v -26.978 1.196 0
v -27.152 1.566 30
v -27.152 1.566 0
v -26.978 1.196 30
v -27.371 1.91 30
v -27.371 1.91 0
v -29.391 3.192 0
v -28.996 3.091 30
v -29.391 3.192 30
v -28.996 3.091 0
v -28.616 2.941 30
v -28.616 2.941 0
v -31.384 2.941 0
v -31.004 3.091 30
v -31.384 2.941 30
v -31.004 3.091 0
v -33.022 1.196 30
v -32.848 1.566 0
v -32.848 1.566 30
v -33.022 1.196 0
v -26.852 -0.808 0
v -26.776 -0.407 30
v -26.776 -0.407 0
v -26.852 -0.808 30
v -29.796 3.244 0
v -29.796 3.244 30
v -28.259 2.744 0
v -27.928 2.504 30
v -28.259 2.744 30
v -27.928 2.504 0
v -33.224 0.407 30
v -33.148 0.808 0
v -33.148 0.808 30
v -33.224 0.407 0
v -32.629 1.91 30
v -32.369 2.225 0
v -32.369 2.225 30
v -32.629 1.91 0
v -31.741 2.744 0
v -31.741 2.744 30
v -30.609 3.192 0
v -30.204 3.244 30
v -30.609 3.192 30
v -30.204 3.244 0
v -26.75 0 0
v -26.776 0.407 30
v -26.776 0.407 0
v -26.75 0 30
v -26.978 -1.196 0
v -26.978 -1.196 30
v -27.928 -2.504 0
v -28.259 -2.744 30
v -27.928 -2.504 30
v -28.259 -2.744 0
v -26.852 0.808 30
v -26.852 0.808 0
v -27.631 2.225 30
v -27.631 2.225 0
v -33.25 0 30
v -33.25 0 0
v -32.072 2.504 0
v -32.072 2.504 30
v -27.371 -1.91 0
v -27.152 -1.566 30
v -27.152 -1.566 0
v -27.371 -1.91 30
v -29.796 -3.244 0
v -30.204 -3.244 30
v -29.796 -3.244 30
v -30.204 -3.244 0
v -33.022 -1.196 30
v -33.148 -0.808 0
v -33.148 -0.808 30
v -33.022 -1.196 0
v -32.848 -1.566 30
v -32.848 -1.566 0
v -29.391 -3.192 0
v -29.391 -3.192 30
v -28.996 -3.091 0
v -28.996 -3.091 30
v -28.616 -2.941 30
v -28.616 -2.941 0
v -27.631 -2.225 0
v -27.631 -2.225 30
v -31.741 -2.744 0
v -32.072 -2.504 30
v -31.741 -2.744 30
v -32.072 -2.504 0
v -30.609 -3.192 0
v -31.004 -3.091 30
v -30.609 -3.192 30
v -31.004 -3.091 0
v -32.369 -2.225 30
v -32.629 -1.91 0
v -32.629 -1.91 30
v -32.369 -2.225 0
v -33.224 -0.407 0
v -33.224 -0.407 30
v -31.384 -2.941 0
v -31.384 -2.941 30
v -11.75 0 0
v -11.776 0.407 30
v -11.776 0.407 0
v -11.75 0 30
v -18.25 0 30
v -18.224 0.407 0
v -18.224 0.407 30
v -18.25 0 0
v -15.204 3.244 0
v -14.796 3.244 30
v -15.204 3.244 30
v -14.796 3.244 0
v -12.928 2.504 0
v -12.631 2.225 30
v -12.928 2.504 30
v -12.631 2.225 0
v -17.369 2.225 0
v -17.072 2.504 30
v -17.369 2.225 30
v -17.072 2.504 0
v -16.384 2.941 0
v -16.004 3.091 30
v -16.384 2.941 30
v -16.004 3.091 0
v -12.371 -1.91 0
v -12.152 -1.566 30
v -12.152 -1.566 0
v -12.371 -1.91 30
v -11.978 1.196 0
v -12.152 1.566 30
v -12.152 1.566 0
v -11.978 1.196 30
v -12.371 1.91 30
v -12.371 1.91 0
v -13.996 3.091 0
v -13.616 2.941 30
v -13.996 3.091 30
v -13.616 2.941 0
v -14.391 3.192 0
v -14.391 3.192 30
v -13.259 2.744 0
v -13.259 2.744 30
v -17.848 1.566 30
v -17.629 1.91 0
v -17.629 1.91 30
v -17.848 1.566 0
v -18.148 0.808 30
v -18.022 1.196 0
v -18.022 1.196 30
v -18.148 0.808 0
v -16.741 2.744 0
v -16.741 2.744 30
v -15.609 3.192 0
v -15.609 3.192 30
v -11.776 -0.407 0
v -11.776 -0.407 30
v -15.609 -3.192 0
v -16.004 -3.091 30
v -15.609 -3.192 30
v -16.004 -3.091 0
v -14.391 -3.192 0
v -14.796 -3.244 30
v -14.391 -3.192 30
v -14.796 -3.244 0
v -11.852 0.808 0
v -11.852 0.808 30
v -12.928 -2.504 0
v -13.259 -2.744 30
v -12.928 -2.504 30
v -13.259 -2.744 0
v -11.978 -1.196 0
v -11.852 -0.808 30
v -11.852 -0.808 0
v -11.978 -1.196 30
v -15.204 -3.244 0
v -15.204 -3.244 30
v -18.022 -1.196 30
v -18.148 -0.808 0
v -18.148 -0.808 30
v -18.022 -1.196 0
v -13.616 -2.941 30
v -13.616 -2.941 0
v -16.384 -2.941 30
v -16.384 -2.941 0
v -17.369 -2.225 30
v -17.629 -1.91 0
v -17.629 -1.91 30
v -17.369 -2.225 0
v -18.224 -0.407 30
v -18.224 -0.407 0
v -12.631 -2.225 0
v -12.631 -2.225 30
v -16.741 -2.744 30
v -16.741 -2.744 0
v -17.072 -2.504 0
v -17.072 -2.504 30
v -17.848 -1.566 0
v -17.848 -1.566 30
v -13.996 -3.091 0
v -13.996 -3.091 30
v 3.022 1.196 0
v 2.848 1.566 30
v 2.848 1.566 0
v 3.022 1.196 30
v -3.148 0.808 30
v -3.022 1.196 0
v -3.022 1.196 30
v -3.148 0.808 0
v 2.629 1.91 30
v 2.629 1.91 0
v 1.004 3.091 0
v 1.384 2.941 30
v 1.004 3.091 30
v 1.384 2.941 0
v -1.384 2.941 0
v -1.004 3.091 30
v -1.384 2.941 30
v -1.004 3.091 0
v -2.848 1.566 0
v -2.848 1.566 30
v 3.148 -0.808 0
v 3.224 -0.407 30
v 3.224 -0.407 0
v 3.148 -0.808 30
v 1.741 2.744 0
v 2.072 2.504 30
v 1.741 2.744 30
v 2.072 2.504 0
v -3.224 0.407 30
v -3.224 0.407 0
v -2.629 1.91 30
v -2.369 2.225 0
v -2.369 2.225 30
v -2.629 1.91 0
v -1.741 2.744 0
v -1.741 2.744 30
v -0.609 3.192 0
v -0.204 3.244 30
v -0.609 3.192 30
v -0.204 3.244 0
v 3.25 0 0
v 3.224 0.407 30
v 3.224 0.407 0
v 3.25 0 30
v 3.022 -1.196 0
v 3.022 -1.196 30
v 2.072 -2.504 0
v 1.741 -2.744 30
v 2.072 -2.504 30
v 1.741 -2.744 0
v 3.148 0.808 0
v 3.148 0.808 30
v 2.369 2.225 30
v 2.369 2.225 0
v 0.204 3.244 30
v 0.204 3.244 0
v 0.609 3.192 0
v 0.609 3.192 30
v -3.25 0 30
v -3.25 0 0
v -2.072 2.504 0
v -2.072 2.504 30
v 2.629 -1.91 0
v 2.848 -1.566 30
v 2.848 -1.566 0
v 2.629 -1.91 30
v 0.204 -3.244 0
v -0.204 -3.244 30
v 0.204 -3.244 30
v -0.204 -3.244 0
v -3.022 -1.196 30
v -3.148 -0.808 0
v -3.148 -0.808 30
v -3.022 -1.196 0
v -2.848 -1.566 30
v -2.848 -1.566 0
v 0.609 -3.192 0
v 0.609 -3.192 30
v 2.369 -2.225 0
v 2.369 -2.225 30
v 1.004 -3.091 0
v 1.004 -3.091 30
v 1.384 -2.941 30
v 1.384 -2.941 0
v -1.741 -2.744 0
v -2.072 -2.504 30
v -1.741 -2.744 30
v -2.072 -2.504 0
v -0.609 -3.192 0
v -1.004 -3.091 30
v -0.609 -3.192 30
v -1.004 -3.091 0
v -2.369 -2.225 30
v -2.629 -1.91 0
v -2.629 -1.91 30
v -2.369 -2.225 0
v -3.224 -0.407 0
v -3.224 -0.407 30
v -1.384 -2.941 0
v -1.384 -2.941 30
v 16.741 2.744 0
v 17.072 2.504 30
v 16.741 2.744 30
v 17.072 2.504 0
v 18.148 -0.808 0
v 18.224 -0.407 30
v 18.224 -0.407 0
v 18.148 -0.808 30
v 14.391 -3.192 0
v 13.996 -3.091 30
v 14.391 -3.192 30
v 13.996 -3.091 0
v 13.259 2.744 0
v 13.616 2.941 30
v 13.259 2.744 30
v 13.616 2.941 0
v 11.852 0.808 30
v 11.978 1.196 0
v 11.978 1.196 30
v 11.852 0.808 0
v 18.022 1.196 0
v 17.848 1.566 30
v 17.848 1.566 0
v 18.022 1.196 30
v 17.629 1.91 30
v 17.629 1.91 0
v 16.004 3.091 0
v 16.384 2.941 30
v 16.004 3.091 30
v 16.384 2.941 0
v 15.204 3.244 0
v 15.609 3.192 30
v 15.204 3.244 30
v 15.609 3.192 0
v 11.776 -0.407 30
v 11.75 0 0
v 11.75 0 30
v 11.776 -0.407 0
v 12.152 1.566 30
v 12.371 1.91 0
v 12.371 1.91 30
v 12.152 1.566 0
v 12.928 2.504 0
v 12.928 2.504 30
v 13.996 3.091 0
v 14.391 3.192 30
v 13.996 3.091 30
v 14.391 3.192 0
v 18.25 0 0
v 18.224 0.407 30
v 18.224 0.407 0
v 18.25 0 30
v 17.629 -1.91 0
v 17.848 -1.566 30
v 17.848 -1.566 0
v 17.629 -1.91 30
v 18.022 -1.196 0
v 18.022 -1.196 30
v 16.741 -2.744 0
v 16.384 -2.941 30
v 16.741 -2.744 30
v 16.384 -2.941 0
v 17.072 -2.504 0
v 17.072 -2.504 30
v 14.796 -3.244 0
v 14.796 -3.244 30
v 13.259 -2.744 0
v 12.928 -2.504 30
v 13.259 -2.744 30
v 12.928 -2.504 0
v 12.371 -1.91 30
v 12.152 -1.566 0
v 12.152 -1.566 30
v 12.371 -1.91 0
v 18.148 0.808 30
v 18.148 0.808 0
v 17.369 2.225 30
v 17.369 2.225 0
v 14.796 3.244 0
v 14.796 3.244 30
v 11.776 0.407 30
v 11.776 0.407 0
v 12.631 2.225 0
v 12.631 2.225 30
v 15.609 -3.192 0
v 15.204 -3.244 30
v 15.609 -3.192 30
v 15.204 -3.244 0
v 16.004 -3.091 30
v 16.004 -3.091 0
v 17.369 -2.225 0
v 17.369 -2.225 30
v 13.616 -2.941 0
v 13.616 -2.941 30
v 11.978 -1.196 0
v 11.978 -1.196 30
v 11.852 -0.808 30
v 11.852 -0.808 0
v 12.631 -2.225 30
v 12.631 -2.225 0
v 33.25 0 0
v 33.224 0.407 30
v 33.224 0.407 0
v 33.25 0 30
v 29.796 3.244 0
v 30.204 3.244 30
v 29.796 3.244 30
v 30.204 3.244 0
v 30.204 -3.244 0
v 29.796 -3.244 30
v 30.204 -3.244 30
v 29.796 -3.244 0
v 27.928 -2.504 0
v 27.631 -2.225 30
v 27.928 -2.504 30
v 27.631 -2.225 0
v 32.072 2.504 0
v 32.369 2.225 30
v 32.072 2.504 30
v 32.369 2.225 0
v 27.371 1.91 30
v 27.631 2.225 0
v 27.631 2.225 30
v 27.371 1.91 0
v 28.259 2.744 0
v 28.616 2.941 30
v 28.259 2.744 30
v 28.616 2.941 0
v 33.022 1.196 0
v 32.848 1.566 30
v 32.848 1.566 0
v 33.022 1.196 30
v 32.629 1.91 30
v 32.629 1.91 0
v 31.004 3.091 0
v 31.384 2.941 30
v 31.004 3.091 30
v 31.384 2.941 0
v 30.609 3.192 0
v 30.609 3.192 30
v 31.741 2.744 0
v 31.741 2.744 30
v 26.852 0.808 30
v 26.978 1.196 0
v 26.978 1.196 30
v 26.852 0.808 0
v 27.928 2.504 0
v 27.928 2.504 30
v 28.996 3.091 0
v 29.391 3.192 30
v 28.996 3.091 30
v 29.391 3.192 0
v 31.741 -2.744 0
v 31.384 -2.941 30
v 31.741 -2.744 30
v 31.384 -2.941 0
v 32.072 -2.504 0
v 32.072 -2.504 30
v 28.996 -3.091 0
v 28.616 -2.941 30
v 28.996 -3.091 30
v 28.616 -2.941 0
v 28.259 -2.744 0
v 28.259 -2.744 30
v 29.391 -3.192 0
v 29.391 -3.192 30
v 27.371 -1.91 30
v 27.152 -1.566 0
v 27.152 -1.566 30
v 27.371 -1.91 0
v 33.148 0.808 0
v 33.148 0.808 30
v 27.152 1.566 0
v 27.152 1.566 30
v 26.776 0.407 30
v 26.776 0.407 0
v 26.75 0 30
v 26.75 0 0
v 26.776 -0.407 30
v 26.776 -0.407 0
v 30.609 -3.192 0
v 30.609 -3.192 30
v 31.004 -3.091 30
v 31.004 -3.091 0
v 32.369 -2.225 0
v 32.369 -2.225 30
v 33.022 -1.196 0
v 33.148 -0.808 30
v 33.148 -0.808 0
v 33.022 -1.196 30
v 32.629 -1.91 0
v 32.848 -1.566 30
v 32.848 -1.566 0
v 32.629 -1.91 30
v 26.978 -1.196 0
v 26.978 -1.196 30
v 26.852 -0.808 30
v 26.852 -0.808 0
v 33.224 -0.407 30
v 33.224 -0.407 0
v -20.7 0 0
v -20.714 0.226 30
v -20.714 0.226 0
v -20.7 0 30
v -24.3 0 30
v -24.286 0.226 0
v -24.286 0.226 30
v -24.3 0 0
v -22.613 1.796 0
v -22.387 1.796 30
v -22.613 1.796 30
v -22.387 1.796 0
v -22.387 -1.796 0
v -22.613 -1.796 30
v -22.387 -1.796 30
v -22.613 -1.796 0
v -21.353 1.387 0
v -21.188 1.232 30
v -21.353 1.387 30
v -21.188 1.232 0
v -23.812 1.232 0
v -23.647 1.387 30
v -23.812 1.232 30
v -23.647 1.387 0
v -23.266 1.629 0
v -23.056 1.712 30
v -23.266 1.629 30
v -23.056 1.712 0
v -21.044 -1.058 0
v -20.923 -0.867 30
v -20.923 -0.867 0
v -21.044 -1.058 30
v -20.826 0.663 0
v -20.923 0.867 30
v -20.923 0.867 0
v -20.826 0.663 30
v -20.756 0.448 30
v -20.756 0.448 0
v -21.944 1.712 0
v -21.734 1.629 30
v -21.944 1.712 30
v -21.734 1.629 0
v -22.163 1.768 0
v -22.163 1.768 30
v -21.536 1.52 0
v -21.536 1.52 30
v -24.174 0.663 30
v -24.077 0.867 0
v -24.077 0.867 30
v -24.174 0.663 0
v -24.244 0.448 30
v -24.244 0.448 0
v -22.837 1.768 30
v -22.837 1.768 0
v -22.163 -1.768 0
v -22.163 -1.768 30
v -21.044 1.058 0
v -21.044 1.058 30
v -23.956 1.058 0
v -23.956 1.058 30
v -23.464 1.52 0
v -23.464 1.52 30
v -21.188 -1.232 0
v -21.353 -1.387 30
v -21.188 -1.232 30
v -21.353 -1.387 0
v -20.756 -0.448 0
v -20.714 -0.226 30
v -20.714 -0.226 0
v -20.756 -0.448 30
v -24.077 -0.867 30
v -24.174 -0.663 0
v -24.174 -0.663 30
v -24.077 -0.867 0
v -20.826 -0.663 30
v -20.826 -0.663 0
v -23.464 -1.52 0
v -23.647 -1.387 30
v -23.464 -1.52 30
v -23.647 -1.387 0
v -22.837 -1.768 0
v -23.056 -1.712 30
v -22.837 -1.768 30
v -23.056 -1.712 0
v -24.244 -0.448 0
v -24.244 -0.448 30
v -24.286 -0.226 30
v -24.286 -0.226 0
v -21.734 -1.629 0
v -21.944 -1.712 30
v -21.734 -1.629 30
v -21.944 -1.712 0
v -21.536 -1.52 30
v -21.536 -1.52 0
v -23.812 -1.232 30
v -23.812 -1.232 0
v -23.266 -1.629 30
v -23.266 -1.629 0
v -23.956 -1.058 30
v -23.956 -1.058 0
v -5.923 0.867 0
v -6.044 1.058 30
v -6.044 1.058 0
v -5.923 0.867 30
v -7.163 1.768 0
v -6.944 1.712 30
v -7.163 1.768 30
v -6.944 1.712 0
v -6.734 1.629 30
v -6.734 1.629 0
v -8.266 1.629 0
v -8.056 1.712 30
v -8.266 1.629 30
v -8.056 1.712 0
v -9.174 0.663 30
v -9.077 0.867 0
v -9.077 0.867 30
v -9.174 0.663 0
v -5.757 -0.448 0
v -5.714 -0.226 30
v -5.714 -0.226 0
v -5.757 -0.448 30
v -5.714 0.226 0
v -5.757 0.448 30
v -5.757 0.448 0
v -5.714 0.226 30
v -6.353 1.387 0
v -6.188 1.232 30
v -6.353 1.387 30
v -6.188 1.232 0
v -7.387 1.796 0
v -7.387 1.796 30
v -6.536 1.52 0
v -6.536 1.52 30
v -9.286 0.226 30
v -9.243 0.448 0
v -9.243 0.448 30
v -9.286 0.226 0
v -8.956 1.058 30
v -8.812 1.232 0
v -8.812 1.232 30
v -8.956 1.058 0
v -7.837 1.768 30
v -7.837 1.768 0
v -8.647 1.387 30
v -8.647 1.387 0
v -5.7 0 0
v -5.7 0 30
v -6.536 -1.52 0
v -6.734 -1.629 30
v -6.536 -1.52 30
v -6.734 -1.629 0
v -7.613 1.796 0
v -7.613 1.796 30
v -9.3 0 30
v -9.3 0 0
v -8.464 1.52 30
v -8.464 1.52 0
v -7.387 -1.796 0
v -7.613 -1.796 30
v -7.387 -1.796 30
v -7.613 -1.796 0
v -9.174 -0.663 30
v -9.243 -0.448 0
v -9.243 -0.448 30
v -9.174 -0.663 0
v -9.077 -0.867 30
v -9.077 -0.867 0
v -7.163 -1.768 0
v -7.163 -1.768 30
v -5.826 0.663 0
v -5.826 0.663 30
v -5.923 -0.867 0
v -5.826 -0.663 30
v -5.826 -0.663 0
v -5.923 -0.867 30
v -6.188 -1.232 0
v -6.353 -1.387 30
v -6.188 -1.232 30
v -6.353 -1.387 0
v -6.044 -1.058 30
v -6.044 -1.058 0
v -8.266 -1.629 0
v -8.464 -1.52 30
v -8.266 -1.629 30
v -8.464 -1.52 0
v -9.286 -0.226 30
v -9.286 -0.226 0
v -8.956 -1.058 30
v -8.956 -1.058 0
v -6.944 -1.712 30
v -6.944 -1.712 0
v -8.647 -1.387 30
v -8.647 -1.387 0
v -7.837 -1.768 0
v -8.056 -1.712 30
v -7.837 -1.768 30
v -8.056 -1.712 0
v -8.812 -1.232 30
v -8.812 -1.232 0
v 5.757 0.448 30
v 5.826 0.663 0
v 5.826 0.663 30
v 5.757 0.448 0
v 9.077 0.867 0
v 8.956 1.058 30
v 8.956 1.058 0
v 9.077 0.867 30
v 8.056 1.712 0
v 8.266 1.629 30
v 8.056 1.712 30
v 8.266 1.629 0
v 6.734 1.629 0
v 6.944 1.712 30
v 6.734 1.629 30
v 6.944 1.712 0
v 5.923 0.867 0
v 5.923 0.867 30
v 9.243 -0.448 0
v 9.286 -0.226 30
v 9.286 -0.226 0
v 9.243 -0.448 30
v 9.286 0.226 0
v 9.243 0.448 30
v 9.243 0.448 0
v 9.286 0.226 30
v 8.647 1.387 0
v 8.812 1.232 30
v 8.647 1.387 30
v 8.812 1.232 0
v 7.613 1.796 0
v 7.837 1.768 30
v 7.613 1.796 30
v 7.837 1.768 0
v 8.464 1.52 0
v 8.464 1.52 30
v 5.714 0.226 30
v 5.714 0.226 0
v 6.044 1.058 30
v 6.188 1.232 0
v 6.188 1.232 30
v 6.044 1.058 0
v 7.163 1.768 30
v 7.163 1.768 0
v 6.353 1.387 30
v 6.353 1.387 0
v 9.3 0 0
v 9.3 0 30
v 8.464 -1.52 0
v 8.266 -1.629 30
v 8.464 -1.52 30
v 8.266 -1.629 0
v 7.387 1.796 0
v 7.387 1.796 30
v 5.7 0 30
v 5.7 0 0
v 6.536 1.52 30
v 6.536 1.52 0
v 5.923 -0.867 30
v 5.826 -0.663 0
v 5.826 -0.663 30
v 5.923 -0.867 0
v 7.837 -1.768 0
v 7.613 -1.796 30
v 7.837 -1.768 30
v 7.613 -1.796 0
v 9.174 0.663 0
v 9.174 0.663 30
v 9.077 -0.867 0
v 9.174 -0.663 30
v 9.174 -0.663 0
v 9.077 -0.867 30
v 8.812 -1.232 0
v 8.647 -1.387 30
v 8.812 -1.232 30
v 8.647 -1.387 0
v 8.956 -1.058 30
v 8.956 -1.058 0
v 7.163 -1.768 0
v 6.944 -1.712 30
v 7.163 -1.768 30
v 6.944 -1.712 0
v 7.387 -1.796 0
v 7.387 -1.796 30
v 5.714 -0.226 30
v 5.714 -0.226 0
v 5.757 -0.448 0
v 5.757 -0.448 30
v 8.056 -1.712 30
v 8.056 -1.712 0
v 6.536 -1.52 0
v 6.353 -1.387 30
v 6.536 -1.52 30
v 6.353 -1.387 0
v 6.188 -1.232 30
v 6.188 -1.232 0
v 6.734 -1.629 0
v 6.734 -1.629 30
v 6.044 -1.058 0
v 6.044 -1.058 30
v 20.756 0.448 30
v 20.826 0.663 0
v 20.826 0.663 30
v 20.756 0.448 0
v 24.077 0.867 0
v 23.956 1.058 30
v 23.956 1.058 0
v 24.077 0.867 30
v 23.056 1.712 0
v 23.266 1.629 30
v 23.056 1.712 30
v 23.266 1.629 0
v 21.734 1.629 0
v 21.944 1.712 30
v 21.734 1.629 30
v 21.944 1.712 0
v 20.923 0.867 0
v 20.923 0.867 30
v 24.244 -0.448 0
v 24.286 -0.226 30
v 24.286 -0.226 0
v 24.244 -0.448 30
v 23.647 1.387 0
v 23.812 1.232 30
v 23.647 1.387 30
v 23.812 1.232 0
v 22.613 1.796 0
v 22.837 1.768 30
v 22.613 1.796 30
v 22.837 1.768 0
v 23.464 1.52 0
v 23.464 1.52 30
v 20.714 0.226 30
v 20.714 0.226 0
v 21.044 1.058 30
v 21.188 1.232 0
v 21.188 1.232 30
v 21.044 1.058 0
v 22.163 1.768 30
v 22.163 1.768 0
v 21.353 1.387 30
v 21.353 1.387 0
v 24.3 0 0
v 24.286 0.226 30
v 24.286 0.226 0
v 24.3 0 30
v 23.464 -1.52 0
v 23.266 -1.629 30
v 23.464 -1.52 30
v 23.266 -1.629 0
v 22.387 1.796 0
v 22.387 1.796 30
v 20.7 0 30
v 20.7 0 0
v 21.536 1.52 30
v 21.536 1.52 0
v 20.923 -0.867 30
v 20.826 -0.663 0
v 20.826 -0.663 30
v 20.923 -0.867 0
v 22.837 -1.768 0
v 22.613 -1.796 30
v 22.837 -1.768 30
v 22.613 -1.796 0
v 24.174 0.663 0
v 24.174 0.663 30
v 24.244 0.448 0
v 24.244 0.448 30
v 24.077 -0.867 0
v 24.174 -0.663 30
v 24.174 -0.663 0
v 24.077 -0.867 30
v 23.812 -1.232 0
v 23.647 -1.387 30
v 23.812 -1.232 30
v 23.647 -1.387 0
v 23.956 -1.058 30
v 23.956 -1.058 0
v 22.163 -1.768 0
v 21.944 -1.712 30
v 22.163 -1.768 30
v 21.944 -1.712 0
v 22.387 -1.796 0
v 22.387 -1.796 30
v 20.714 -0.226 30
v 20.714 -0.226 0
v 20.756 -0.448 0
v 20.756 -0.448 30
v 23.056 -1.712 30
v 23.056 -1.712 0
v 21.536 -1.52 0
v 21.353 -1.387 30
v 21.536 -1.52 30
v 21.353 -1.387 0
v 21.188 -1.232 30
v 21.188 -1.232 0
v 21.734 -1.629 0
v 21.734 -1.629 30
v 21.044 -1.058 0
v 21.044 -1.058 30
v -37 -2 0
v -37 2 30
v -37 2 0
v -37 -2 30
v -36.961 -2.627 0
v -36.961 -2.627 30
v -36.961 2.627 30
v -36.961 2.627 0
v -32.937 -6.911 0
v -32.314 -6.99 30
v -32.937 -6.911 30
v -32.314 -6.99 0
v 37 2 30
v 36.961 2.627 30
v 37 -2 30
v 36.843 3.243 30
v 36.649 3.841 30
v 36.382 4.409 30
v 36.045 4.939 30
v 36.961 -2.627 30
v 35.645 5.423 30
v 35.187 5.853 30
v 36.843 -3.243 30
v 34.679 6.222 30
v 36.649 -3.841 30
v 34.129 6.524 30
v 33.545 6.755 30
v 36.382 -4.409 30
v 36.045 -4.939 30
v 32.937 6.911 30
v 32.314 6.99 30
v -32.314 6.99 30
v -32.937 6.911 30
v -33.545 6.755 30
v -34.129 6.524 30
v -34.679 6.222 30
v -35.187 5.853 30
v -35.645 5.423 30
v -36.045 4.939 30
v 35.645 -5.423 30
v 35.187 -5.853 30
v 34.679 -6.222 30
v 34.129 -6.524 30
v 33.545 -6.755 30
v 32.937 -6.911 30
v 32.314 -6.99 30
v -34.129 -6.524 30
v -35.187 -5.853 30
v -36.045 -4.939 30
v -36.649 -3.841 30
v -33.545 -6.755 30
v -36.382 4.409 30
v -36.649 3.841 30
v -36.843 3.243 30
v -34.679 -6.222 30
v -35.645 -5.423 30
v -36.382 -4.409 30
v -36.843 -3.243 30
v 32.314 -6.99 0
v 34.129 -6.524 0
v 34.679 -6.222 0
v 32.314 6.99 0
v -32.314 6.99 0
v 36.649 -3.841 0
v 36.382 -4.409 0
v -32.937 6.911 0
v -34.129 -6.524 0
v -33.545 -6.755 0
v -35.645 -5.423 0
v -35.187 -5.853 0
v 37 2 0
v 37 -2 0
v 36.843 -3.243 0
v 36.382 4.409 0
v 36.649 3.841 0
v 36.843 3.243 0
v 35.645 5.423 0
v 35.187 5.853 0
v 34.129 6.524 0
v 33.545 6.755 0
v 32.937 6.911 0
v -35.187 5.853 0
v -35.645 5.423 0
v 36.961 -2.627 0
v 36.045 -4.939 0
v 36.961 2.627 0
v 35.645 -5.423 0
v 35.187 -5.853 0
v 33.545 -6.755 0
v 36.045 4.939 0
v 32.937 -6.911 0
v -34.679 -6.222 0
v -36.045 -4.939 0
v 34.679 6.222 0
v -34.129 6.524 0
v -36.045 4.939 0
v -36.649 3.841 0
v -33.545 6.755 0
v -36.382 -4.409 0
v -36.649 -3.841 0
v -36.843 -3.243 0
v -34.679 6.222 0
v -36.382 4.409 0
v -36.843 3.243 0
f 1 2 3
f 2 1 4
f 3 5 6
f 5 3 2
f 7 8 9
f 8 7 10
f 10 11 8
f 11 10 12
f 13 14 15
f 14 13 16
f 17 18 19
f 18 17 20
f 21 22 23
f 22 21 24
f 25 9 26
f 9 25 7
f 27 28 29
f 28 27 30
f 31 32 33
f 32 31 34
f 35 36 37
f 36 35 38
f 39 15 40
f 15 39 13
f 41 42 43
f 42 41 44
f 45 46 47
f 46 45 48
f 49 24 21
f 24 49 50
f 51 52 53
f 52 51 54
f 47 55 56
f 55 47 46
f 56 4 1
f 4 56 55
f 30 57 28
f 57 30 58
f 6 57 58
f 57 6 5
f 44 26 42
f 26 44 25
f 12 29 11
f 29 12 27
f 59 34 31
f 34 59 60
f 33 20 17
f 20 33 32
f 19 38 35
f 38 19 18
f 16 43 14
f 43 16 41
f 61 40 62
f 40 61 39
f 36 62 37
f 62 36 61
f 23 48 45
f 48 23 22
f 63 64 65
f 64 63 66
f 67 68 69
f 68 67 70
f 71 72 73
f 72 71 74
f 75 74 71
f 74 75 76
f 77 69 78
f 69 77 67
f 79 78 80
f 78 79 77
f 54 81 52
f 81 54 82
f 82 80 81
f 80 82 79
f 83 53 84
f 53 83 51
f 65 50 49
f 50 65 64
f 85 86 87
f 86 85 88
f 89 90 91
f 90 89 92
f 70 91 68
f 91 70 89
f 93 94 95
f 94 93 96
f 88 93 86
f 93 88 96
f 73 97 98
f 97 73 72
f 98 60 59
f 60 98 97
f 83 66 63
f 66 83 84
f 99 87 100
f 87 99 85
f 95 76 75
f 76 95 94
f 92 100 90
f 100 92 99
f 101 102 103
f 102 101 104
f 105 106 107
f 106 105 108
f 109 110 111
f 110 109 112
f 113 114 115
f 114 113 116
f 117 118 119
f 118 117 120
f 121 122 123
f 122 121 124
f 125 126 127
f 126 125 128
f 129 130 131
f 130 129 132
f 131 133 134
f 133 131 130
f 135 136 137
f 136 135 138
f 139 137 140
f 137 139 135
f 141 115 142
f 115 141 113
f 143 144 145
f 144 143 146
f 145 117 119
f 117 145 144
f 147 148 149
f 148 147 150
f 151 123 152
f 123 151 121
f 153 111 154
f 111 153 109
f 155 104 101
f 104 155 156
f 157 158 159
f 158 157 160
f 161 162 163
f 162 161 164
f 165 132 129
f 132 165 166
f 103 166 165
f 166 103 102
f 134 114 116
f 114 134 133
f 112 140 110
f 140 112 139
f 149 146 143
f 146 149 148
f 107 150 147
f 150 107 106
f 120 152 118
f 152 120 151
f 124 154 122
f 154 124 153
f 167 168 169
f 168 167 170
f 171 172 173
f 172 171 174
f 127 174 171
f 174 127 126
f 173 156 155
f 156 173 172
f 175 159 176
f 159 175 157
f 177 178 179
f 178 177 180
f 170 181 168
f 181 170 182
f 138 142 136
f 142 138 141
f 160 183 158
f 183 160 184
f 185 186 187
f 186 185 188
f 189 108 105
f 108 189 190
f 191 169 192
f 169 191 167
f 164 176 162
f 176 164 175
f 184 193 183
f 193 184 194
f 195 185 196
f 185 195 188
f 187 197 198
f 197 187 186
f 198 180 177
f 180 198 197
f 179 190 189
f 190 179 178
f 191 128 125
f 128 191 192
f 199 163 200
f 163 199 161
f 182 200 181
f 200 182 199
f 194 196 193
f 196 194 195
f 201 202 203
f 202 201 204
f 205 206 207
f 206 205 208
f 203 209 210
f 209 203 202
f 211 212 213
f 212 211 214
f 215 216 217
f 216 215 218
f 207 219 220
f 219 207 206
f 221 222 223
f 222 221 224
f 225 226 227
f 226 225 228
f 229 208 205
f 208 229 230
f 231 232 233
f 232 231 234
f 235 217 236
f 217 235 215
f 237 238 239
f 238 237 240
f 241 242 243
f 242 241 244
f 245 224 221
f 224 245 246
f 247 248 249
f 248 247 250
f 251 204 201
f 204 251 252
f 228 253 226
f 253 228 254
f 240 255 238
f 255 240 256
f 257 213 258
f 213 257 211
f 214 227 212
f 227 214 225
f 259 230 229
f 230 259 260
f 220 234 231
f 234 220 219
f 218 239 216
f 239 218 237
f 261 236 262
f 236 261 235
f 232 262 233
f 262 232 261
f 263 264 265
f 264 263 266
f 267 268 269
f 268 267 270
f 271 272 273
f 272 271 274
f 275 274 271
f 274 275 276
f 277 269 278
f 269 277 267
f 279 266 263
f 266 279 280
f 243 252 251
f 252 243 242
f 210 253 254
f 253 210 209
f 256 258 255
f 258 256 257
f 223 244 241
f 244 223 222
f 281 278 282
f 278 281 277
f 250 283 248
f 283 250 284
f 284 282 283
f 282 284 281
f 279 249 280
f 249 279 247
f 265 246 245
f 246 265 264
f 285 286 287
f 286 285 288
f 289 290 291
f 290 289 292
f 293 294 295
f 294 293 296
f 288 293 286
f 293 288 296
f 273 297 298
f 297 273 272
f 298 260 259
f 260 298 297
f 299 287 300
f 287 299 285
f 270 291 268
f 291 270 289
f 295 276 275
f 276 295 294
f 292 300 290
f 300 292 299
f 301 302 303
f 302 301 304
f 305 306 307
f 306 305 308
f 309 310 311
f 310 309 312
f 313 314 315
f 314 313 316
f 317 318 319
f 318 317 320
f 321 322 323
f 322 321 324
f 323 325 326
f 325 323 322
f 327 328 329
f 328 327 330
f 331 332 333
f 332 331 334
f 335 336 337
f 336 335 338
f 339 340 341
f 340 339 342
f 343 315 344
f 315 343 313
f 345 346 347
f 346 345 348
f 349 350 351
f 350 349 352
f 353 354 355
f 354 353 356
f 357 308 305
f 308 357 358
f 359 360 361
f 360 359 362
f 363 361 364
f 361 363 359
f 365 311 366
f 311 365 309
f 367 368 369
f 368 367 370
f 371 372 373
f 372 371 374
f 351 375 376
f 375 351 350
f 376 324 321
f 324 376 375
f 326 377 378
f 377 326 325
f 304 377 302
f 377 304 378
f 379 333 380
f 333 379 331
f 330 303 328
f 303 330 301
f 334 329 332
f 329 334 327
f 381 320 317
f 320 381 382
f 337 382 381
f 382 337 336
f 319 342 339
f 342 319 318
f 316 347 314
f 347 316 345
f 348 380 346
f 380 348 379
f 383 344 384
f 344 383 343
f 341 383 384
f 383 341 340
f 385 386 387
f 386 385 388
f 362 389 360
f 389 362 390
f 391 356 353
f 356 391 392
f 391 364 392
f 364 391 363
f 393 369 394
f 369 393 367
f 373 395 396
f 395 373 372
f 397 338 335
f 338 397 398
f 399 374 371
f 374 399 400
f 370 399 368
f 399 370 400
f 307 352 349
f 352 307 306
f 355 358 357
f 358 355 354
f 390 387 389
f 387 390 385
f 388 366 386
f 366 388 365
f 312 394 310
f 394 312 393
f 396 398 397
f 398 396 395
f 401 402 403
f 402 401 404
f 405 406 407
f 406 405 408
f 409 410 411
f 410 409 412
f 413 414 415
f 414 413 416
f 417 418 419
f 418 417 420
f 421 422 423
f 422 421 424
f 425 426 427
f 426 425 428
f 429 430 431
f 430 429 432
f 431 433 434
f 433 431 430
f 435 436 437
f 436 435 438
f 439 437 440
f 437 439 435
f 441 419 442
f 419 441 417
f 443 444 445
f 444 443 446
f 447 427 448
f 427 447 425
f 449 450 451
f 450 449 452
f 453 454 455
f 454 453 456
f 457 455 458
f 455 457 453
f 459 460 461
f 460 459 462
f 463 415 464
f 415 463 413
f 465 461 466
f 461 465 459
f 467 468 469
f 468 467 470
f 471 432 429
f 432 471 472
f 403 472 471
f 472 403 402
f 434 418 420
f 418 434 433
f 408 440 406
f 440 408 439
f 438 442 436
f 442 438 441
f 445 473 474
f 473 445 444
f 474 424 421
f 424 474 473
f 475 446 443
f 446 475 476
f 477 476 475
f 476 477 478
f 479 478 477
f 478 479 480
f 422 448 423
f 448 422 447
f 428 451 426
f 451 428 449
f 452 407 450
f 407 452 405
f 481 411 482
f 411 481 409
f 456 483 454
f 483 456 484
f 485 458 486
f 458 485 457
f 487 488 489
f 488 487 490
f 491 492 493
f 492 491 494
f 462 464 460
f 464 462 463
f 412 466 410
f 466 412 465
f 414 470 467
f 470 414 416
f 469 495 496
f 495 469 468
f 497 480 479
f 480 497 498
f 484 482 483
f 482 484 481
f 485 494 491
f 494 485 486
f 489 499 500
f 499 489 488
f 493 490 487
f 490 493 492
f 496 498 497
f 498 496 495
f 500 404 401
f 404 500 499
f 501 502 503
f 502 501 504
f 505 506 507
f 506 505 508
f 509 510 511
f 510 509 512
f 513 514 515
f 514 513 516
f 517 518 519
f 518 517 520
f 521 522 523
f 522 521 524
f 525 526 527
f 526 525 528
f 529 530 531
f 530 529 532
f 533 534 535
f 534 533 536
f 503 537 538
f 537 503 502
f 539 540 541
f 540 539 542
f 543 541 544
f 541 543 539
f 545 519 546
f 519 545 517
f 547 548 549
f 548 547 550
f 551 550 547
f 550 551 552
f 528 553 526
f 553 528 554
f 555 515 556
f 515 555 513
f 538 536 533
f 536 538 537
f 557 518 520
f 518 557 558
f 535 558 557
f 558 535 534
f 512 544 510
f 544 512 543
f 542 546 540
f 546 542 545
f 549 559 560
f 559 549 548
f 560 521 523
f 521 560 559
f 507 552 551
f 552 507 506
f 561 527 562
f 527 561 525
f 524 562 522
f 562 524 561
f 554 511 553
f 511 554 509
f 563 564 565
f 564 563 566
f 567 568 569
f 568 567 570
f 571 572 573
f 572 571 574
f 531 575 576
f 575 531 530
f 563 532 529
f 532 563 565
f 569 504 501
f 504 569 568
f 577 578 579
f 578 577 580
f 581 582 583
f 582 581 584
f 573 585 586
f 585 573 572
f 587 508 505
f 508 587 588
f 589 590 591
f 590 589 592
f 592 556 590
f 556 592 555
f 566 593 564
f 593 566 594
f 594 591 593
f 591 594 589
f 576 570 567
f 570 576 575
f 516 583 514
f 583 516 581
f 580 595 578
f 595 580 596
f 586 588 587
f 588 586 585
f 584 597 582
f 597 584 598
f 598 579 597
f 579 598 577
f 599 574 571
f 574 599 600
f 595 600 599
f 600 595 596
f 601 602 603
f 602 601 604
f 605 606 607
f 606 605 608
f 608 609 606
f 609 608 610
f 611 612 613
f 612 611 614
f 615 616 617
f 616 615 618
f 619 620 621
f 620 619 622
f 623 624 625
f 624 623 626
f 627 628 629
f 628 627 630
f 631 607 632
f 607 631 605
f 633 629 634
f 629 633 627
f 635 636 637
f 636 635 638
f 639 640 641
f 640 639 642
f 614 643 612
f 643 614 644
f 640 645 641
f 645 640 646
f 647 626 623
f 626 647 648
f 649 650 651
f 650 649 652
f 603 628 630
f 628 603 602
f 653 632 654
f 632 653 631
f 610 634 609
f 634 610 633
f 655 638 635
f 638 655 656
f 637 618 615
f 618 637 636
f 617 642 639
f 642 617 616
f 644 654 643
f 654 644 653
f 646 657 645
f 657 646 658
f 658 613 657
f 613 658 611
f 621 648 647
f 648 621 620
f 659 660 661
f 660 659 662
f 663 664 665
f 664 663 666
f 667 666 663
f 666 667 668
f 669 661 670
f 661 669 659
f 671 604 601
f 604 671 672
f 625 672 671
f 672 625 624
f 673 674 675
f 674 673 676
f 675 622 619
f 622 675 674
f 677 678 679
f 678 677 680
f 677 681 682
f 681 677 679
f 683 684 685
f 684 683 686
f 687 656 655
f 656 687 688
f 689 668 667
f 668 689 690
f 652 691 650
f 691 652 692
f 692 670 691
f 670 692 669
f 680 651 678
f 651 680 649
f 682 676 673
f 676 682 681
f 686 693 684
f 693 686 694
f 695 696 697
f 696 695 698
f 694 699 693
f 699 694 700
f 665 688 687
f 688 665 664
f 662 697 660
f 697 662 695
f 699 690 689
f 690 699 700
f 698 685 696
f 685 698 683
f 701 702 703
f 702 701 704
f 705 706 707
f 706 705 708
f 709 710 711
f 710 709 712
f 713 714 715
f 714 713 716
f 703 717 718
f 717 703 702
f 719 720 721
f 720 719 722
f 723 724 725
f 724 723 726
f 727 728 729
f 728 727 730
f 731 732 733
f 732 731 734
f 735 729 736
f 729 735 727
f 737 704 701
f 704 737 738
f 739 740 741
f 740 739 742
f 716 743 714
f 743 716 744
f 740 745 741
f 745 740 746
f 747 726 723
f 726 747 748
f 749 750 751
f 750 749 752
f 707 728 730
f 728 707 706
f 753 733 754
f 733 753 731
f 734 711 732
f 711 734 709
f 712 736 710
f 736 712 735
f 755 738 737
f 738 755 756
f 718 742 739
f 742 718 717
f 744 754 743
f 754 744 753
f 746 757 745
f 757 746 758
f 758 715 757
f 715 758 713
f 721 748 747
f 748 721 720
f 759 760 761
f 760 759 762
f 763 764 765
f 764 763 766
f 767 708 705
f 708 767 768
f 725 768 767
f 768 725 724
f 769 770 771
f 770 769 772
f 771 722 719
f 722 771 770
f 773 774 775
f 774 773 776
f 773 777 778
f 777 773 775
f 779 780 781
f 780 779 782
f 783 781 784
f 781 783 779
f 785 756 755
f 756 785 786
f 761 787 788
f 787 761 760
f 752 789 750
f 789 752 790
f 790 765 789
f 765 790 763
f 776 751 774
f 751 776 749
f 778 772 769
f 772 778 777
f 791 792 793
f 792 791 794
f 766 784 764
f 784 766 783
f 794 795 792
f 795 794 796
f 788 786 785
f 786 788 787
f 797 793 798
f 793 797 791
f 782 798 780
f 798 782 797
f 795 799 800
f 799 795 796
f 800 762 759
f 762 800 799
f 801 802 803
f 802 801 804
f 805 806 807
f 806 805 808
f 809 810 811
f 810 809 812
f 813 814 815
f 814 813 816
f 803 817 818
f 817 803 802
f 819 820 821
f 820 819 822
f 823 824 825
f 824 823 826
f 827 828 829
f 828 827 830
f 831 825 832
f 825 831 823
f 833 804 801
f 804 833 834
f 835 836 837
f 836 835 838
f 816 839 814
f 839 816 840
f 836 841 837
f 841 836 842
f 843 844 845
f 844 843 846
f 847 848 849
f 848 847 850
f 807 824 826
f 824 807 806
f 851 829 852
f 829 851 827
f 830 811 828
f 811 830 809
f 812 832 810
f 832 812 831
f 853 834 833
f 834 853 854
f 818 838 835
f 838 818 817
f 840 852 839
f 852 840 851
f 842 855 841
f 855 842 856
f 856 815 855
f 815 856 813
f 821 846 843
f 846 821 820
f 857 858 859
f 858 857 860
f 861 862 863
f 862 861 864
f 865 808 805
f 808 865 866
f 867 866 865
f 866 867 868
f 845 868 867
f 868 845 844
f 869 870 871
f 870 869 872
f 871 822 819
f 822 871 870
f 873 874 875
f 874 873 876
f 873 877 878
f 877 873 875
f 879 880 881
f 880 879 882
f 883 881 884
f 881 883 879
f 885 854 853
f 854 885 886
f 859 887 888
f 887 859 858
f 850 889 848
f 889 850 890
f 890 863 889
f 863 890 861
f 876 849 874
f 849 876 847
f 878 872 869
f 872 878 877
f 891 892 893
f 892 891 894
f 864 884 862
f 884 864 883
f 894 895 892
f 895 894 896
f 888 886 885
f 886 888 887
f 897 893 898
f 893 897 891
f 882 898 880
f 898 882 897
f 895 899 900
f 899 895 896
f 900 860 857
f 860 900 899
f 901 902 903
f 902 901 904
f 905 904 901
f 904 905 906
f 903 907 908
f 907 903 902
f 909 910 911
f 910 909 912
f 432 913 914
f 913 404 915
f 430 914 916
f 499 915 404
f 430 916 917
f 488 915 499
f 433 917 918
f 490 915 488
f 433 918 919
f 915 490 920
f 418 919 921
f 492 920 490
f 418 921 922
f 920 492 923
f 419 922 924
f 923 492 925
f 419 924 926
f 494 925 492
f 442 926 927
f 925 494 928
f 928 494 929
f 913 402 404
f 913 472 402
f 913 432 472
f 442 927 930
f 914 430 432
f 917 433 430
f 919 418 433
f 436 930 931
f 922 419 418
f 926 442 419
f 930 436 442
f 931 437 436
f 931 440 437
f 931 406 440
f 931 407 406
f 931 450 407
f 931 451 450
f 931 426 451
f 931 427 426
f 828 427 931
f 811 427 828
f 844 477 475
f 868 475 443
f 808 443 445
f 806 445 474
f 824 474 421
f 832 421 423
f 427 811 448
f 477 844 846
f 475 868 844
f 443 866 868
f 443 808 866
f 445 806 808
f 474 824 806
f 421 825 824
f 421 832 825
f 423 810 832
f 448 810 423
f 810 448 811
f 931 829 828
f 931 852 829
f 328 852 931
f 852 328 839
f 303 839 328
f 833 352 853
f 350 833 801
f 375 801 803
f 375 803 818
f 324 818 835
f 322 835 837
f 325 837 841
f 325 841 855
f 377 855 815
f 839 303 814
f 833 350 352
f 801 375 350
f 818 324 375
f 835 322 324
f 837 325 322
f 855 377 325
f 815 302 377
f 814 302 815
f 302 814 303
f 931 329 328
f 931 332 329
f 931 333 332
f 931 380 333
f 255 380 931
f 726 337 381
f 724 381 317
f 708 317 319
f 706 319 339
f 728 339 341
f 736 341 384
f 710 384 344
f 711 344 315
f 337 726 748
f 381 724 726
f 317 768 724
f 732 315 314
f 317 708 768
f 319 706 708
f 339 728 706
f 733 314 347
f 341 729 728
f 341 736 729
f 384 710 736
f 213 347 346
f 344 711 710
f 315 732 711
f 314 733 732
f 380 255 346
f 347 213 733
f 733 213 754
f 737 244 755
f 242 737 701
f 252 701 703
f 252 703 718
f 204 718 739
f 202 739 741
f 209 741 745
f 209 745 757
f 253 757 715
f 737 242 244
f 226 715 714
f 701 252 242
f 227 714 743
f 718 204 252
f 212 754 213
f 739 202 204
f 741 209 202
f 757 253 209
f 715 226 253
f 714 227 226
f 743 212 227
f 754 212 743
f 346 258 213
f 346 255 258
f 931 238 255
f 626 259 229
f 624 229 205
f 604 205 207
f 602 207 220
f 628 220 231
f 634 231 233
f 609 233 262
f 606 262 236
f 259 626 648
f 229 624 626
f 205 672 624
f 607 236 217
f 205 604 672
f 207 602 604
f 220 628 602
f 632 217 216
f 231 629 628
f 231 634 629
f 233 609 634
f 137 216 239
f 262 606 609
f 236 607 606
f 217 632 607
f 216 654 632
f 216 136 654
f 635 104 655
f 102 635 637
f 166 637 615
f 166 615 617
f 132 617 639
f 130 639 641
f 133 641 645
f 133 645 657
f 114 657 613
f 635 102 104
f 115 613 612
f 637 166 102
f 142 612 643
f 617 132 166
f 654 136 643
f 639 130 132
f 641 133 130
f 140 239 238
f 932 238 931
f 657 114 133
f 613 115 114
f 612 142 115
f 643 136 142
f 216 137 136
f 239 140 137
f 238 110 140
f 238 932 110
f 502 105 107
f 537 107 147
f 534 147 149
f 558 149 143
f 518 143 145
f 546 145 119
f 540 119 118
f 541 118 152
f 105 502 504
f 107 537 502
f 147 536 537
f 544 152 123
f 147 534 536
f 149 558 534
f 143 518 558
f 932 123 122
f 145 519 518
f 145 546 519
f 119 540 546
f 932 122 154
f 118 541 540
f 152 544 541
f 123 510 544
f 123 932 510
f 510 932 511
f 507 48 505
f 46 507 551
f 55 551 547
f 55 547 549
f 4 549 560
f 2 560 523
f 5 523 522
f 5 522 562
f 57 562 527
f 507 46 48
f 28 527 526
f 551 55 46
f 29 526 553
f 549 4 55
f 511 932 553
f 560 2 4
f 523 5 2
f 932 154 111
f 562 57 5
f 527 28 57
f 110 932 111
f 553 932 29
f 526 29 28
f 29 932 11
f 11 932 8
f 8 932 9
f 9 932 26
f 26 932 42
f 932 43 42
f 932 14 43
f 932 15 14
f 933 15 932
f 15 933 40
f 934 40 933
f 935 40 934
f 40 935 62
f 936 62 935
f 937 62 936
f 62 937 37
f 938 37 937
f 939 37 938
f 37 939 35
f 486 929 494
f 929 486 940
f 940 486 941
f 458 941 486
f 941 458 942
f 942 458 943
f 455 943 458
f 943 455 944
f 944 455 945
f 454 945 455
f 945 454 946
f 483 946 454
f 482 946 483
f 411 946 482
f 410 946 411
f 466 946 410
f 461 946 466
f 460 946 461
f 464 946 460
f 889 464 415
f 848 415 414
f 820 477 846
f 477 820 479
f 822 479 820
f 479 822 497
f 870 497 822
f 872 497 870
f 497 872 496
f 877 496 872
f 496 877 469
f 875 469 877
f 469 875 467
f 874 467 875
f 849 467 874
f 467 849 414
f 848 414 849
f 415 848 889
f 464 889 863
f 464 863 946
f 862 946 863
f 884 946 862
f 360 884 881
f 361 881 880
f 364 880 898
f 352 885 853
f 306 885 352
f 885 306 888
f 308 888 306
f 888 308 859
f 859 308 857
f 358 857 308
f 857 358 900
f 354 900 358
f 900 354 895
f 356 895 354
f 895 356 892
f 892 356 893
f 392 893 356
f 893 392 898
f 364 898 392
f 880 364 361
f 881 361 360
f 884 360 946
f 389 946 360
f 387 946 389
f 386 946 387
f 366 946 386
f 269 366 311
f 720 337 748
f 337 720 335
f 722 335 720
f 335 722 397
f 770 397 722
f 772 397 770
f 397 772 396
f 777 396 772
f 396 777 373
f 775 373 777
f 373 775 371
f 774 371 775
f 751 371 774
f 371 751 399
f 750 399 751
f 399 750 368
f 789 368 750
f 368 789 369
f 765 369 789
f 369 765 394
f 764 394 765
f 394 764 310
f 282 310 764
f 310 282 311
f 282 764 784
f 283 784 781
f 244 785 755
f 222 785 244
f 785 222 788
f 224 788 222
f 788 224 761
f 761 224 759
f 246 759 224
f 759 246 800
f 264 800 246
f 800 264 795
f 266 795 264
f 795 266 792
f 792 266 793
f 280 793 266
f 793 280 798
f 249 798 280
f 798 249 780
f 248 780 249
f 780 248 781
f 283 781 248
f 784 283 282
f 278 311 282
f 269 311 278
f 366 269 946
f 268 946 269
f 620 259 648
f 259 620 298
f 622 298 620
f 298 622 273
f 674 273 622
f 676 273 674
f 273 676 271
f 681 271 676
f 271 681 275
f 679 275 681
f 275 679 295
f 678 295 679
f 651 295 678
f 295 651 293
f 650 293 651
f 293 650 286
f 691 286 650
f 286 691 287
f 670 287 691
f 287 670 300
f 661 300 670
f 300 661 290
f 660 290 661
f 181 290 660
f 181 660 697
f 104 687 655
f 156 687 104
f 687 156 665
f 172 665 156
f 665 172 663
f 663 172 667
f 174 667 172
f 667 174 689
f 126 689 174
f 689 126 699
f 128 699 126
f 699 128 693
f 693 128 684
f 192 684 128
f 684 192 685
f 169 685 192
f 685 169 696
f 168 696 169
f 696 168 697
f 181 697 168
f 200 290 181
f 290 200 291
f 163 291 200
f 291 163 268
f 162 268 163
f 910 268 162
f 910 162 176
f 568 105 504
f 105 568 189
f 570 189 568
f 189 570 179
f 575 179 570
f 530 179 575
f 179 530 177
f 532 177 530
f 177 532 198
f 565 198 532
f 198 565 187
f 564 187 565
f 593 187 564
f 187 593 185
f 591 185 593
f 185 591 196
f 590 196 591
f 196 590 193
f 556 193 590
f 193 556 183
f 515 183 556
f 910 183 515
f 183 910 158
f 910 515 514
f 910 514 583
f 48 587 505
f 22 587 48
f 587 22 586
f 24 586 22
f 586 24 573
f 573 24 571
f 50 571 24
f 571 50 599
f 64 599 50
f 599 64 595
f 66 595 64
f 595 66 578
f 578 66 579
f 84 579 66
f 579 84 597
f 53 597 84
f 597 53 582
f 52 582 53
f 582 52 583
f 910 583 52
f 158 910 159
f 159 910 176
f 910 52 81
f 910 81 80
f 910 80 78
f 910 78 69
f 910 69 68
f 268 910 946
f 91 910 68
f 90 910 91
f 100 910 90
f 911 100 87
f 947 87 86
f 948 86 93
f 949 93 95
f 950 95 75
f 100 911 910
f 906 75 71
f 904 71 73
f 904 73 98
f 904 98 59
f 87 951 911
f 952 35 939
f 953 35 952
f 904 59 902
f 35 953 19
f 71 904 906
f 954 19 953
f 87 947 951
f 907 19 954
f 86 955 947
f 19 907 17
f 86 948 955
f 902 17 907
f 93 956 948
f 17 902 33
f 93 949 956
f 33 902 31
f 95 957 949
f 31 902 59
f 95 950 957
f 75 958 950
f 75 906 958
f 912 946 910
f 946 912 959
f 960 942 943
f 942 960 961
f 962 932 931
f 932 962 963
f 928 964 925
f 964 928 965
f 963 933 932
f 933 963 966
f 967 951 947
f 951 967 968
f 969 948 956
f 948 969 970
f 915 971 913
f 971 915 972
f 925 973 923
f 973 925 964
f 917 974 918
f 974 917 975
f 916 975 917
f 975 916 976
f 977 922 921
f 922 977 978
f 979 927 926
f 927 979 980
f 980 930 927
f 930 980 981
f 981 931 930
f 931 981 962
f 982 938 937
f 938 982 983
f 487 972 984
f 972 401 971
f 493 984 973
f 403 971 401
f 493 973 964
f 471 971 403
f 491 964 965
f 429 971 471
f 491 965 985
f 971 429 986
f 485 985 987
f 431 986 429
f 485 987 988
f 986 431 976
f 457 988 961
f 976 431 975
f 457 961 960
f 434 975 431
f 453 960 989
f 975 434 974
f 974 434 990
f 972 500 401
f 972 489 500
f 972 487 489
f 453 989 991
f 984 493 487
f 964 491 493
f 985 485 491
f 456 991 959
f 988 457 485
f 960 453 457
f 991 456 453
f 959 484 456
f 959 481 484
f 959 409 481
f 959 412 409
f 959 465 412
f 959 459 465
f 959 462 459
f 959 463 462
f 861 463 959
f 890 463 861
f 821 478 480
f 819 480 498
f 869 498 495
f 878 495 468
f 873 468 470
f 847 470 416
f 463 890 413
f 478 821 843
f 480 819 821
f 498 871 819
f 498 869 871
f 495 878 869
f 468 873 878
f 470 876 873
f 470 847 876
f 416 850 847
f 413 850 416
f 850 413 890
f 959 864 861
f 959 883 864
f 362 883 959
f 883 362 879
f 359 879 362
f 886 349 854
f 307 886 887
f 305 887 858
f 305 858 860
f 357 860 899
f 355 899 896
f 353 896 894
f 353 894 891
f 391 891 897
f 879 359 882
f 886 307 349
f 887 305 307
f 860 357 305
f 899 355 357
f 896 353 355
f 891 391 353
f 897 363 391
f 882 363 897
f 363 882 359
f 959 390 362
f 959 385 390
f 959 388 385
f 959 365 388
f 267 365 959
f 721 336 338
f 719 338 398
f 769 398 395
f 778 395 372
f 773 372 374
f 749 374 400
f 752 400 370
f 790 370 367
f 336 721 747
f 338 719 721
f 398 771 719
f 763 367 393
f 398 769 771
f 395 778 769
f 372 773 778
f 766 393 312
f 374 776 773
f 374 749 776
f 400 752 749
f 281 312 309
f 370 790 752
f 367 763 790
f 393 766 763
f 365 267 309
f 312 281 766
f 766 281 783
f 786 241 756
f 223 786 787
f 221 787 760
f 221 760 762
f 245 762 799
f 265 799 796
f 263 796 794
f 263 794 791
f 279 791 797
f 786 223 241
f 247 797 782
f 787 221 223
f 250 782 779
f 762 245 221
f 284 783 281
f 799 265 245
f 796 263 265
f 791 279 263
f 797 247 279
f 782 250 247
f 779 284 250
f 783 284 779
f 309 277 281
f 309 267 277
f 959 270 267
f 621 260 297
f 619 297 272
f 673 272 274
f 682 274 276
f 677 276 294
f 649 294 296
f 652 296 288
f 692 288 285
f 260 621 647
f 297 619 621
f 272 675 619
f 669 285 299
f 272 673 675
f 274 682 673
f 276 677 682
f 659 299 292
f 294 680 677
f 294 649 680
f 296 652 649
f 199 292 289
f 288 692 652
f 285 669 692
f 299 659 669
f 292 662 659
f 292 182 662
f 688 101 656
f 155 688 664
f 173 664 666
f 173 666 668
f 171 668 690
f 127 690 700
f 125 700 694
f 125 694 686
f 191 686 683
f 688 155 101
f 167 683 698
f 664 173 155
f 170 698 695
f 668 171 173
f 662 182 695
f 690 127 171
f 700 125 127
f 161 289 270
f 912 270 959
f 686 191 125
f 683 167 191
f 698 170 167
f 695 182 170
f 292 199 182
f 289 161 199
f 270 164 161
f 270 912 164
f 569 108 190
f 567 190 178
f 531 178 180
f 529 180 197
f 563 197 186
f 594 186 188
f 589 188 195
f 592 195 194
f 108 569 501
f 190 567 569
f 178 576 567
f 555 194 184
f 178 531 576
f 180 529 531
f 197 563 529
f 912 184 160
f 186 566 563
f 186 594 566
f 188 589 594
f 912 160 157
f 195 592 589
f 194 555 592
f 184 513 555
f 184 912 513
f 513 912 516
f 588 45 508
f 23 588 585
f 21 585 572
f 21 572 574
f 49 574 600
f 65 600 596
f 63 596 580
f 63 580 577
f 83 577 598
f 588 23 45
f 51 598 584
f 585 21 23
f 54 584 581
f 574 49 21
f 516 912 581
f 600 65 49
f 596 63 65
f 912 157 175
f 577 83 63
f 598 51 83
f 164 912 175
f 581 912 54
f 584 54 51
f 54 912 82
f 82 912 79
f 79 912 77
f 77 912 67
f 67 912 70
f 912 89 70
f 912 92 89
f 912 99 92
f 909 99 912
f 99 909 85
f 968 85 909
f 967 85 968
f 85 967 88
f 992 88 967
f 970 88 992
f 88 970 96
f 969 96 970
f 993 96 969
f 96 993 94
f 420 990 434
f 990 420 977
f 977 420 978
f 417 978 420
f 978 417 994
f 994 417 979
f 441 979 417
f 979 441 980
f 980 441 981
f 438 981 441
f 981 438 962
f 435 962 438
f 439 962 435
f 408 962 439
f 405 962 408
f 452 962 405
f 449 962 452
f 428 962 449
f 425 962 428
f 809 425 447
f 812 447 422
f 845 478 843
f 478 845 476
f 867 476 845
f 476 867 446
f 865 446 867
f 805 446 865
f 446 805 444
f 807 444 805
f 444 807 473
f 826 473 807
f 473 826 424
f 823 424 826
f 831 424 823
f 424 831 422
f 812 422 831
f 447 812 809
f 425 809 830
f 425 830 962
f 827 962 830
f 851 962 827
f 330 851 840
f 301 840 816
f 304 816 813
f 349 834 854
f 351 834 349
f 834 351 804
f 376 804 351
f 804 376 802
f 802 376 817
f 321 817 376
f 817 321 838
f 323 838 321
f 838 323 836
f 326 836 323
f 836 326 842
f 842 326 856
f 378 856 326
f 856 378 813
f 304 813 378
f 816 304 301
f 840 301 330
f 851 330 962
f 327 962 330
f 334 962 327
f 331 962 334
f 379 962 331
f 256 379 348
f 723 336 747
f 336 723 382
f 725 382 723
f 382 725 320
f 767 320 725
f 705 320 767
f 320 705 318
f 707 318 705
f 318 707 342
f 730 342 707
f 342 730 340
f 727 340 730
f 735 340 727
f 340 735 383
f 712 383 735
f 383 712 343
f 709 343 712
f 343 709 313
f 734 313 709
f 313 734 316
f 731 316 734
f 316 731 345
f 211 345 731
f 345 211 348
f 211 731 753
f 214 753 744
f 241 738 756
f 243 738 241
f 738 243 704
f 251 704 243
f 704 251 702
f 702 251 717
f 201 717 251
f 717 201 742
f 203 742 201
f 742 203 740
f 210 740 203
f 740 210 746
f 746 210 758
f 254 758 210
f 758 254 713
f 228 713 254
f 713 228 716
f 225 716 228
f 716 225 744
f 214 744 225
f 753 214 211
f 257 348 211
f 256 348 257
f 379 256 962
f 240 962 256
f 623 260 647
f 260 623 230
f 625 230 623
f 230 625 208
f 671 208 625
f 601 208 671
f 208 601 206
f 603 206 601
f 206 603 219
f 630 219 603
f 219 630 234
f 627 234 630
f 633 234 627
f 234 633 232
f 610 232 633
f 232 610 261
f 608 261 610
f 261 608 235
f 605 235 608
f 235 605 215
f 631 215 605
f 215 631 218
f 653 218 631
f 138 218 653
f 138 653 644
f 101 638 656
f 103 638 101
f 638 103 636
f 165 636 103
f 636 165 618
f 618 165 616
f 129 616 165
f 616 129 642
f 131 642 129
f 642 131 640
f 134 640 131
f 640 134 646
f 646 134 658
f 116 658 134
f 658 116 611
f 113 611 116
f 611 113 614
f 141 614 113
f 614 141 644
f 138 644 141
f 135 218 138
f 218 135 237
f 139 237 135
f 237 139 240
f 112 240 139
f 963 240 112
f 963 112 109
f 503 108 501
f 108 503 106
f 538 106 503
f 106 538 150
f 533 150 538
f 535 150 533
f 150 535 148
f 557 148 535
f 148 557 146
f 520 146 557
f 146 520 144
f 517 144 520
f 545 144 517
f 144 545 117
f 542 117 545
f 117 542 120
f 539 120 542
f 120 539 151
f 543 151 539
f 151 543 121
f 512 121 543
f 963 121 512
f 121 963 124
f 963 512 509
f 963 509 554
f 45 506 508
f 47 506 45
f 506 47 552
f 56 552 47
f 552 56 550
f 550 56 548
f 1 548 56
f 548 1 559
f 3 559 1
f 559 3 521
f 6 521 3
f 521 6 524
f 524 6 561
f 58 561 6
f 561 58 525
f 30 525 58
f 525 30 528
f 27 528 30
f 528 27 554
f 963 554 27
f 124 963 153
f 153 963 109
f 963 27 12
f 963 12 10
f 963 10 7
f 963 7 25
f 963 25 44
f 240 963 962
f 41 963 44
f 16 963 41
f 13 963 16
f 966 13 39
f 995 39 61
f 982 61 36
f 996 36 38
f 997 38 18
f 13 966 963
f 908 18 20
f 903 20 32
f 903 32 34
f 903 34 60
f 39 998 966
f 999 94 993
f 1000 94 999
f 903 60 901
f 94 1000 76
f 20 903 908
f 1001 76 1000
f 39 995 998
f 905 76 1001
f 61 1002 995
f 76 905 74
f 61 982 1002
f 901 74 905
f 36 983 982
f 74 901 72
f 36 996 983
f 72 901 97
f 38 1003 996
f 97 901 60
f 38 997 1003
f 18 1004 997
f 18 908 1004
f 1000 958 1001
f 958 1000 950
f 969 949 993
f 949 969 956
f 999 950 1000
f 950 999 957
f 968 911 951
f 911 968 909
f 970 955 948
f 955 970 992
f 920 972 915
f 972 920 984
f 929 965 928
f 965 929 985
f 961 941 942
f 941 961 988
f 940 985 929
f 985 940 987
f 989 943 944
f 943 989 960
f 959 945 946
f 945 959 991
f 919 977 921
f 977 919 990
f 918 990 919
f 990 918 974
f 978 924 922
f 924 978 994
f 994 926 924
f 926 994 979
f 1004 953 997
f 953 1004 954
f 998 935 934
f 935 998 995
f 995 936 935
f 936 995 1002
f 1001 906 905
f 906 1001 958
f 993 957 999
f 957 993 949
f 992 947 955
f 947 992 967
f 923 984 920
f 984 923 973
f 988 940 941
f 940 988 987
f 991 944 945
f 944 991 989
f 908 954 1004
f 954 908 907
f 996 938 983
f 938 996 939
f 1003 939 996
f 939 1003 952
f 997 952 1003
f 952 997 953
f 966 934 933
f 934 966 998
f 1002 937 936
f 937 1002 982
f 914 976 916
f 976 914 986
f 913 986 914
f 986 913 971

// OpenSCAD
$fn = 50;


difference() {
	union() {
		translate(v = [0, 0, 0]) {
			rotate(a = [0, 0, 0]) {
				hull() {
					translate(v = [-32.0000000000, 2.0000000000, 0]) {
						rotate(a = [0, 0, 0]) {
							translate(v = [0, 0, 0]) {
								rotate(a = [0, 0, 0]) {
									cylinder(h = 30, r = 5);
								}
							}
						}
					}
					translate(v = [32.0000000000, 2.0000000000, 0]) {
						rotate(a = [0, 0, 0]) {
							translate(v = [0, 0, 0]) {
								rotate(a = [0, 0, 0]) {
									cylinder(h = 30, r = 5);
								}
							}
						}
					}
					translate(v = [-32.0000000000, -2.0000000000, 0]) {
						rotate(a = [0, 0, 0]) {
							translate(v = [0, 0, 0]) {
								rotate(a = [0, 0, 0]) {
									cylinder(h = 30, r = 5);
								}
							}
						}
					}
					translate(v = [32.0000000000, -2.0000000000, 0]) {
						rotate(a = [0, 0, 0]) {
							translate(v = [0, 0, 0]) {
								rotate(a = [0, 0, 0]) {
									cylinder(h = 30, r = 5);
								}
							}
						}
					}
				}
			}
		}
	}
	union() {
		translate(v = [-30.0000000000, 0.0000000000, 0]) {
			rotate(a = [0, 0, 0]) {
				translate(v = [0, 0, -50]) {
					rotate(a = [0, 0, 0]) {
						cylinder(h = 100, r = 3.2500000000);
					}
				}
			}
		}
		translate(v = [-15.0000000000, 0.0000000000, 0]) {
			rotate(a = [0, 0, 0]) {
				translate(v = [0, 0, -50]) {
					rotate(a = [0, 0, 0]) {
						cylinder(h = 100, r = 3.2500000000);
					}
				}
			}
		}
		translate(v = [0.0000000000, 0.0000000000, 0]) {
			rotate(a = [0, 0, 0]) {
				translate(v = [0, 0, -50]) {
					rotate(a = [0, 0, 0]) {
						cylinder(h = 100, r = 3.2500000000);
					}
				}
			}
		}
		translate(v = [15.0000000000, 0.0000000000, 0]) {
			rotate(a = [0, 0, 0]) {
				translate(v = [0, 0, -50]) {
					rotate(a = [0, 0, 0]) {
						cylinder(h = 100, r = 3.2500000000);
					}
				}
			}
		}
		translate(v = [30.0000000000, 0.0000000000, 0]) {
			rotate(a = [0, 0, 0]) {
				translate(v = [0, 0, -50]) {
					rotate(a = [0, 0, 0]) {
						cylinder(h = 100, r = 3.2500000000);
					}
				}
			}
		}
		translate(v = [-30.0000000000, 0.0000000000, 0]) {
			rotate(a = [0, 0, 0]) {
				translate(v = [0, 0, -50]) {
					rotate(a = [0, 0, 0]) {
						cylinder(h = 100, r = 1.8000000000);
					}
				}
			}
		}
		translate(v = [-22.5000000000, 0.0000000000, 0]) {
			rotate(a = [0, 0, 0]) {
				translate(v = [0, 0, -50]) {
					rotate(a = [0, 0, 0]) {
						cylinder(h = 100, r = 1.8000000000);
					}
				}
			}
		}
		translate(v = [-15.0000000000, 0.0000000000, 0]) {
			rotate(a = [0, 0, 0]) {
				translate(v = [0, 0, -50]) {
					rotate(a = [0, 0, 0]) {
						cylinder(h = 100, r = 1.8000000000);
					}
				}
			}
		}
		translate(v = [-7.5000000000, 0.0000000000, 0]) {
			rotate(a = [0, 0, 0]) {
				translate(v = [0, 0, -50]) {
					rotate(a = [0, 0, 0]) {
						cylinder(h = 100, r = 1.8000000000);
					}
				}
			}
		}
		translate(v = [0.0000000000, 0.0000000000, 0]) {
			rotate(a = [0, 0, 0]) {
				translate(v = [0, 0, -50]) {
					rotate(a = [0, 0, 0]) {
						cylinder(h = 100, r = 1.8000000000);
					}
				}
			}
		}
		translate(v = [7.5000000000, 0.0000000000, 0]) {
			rotate(a = [0, 0, 0]) {
				translate(v = [0, 0, -50]) {
					rotate(a = [0, 0, 0]) {
						cylinder(h = 100, r = 1.8000000000);
					}
				}
			}
		}
		translate(v = [15.0000000000, 0.0000000000, 0]) {
			rotate(a = [0, 0, 0]) {
				translate(v = [0, 0, -50]) {
					rotate(a = [0, 0, 0]) {
						cylinder(h = 100, r = 1.8000000000);
					}
				}
			}
		}
		translate(v = [22.5000000000, 0.0000000000, 0]) {
			rotate(a = [0, 0, 0]) {
				translate(v = [0, 0, -50]) {
					rotate(a = [0, 0, 0]) {
						cylinder(h = 100, r = 1.8000000000);
					}
				}
			}
		}
		translate(v = [30.0000000000, 0.0000000000, 0]) {
			rotate(a = [0, 0, 0]) {
				translate(v = [0, 0, -50]) {
					rotate(a = [0, 0, 0]) {
						cylinder(h = 100, r = 1.8000000000);
					}
				}
			}
		}
	}
}
